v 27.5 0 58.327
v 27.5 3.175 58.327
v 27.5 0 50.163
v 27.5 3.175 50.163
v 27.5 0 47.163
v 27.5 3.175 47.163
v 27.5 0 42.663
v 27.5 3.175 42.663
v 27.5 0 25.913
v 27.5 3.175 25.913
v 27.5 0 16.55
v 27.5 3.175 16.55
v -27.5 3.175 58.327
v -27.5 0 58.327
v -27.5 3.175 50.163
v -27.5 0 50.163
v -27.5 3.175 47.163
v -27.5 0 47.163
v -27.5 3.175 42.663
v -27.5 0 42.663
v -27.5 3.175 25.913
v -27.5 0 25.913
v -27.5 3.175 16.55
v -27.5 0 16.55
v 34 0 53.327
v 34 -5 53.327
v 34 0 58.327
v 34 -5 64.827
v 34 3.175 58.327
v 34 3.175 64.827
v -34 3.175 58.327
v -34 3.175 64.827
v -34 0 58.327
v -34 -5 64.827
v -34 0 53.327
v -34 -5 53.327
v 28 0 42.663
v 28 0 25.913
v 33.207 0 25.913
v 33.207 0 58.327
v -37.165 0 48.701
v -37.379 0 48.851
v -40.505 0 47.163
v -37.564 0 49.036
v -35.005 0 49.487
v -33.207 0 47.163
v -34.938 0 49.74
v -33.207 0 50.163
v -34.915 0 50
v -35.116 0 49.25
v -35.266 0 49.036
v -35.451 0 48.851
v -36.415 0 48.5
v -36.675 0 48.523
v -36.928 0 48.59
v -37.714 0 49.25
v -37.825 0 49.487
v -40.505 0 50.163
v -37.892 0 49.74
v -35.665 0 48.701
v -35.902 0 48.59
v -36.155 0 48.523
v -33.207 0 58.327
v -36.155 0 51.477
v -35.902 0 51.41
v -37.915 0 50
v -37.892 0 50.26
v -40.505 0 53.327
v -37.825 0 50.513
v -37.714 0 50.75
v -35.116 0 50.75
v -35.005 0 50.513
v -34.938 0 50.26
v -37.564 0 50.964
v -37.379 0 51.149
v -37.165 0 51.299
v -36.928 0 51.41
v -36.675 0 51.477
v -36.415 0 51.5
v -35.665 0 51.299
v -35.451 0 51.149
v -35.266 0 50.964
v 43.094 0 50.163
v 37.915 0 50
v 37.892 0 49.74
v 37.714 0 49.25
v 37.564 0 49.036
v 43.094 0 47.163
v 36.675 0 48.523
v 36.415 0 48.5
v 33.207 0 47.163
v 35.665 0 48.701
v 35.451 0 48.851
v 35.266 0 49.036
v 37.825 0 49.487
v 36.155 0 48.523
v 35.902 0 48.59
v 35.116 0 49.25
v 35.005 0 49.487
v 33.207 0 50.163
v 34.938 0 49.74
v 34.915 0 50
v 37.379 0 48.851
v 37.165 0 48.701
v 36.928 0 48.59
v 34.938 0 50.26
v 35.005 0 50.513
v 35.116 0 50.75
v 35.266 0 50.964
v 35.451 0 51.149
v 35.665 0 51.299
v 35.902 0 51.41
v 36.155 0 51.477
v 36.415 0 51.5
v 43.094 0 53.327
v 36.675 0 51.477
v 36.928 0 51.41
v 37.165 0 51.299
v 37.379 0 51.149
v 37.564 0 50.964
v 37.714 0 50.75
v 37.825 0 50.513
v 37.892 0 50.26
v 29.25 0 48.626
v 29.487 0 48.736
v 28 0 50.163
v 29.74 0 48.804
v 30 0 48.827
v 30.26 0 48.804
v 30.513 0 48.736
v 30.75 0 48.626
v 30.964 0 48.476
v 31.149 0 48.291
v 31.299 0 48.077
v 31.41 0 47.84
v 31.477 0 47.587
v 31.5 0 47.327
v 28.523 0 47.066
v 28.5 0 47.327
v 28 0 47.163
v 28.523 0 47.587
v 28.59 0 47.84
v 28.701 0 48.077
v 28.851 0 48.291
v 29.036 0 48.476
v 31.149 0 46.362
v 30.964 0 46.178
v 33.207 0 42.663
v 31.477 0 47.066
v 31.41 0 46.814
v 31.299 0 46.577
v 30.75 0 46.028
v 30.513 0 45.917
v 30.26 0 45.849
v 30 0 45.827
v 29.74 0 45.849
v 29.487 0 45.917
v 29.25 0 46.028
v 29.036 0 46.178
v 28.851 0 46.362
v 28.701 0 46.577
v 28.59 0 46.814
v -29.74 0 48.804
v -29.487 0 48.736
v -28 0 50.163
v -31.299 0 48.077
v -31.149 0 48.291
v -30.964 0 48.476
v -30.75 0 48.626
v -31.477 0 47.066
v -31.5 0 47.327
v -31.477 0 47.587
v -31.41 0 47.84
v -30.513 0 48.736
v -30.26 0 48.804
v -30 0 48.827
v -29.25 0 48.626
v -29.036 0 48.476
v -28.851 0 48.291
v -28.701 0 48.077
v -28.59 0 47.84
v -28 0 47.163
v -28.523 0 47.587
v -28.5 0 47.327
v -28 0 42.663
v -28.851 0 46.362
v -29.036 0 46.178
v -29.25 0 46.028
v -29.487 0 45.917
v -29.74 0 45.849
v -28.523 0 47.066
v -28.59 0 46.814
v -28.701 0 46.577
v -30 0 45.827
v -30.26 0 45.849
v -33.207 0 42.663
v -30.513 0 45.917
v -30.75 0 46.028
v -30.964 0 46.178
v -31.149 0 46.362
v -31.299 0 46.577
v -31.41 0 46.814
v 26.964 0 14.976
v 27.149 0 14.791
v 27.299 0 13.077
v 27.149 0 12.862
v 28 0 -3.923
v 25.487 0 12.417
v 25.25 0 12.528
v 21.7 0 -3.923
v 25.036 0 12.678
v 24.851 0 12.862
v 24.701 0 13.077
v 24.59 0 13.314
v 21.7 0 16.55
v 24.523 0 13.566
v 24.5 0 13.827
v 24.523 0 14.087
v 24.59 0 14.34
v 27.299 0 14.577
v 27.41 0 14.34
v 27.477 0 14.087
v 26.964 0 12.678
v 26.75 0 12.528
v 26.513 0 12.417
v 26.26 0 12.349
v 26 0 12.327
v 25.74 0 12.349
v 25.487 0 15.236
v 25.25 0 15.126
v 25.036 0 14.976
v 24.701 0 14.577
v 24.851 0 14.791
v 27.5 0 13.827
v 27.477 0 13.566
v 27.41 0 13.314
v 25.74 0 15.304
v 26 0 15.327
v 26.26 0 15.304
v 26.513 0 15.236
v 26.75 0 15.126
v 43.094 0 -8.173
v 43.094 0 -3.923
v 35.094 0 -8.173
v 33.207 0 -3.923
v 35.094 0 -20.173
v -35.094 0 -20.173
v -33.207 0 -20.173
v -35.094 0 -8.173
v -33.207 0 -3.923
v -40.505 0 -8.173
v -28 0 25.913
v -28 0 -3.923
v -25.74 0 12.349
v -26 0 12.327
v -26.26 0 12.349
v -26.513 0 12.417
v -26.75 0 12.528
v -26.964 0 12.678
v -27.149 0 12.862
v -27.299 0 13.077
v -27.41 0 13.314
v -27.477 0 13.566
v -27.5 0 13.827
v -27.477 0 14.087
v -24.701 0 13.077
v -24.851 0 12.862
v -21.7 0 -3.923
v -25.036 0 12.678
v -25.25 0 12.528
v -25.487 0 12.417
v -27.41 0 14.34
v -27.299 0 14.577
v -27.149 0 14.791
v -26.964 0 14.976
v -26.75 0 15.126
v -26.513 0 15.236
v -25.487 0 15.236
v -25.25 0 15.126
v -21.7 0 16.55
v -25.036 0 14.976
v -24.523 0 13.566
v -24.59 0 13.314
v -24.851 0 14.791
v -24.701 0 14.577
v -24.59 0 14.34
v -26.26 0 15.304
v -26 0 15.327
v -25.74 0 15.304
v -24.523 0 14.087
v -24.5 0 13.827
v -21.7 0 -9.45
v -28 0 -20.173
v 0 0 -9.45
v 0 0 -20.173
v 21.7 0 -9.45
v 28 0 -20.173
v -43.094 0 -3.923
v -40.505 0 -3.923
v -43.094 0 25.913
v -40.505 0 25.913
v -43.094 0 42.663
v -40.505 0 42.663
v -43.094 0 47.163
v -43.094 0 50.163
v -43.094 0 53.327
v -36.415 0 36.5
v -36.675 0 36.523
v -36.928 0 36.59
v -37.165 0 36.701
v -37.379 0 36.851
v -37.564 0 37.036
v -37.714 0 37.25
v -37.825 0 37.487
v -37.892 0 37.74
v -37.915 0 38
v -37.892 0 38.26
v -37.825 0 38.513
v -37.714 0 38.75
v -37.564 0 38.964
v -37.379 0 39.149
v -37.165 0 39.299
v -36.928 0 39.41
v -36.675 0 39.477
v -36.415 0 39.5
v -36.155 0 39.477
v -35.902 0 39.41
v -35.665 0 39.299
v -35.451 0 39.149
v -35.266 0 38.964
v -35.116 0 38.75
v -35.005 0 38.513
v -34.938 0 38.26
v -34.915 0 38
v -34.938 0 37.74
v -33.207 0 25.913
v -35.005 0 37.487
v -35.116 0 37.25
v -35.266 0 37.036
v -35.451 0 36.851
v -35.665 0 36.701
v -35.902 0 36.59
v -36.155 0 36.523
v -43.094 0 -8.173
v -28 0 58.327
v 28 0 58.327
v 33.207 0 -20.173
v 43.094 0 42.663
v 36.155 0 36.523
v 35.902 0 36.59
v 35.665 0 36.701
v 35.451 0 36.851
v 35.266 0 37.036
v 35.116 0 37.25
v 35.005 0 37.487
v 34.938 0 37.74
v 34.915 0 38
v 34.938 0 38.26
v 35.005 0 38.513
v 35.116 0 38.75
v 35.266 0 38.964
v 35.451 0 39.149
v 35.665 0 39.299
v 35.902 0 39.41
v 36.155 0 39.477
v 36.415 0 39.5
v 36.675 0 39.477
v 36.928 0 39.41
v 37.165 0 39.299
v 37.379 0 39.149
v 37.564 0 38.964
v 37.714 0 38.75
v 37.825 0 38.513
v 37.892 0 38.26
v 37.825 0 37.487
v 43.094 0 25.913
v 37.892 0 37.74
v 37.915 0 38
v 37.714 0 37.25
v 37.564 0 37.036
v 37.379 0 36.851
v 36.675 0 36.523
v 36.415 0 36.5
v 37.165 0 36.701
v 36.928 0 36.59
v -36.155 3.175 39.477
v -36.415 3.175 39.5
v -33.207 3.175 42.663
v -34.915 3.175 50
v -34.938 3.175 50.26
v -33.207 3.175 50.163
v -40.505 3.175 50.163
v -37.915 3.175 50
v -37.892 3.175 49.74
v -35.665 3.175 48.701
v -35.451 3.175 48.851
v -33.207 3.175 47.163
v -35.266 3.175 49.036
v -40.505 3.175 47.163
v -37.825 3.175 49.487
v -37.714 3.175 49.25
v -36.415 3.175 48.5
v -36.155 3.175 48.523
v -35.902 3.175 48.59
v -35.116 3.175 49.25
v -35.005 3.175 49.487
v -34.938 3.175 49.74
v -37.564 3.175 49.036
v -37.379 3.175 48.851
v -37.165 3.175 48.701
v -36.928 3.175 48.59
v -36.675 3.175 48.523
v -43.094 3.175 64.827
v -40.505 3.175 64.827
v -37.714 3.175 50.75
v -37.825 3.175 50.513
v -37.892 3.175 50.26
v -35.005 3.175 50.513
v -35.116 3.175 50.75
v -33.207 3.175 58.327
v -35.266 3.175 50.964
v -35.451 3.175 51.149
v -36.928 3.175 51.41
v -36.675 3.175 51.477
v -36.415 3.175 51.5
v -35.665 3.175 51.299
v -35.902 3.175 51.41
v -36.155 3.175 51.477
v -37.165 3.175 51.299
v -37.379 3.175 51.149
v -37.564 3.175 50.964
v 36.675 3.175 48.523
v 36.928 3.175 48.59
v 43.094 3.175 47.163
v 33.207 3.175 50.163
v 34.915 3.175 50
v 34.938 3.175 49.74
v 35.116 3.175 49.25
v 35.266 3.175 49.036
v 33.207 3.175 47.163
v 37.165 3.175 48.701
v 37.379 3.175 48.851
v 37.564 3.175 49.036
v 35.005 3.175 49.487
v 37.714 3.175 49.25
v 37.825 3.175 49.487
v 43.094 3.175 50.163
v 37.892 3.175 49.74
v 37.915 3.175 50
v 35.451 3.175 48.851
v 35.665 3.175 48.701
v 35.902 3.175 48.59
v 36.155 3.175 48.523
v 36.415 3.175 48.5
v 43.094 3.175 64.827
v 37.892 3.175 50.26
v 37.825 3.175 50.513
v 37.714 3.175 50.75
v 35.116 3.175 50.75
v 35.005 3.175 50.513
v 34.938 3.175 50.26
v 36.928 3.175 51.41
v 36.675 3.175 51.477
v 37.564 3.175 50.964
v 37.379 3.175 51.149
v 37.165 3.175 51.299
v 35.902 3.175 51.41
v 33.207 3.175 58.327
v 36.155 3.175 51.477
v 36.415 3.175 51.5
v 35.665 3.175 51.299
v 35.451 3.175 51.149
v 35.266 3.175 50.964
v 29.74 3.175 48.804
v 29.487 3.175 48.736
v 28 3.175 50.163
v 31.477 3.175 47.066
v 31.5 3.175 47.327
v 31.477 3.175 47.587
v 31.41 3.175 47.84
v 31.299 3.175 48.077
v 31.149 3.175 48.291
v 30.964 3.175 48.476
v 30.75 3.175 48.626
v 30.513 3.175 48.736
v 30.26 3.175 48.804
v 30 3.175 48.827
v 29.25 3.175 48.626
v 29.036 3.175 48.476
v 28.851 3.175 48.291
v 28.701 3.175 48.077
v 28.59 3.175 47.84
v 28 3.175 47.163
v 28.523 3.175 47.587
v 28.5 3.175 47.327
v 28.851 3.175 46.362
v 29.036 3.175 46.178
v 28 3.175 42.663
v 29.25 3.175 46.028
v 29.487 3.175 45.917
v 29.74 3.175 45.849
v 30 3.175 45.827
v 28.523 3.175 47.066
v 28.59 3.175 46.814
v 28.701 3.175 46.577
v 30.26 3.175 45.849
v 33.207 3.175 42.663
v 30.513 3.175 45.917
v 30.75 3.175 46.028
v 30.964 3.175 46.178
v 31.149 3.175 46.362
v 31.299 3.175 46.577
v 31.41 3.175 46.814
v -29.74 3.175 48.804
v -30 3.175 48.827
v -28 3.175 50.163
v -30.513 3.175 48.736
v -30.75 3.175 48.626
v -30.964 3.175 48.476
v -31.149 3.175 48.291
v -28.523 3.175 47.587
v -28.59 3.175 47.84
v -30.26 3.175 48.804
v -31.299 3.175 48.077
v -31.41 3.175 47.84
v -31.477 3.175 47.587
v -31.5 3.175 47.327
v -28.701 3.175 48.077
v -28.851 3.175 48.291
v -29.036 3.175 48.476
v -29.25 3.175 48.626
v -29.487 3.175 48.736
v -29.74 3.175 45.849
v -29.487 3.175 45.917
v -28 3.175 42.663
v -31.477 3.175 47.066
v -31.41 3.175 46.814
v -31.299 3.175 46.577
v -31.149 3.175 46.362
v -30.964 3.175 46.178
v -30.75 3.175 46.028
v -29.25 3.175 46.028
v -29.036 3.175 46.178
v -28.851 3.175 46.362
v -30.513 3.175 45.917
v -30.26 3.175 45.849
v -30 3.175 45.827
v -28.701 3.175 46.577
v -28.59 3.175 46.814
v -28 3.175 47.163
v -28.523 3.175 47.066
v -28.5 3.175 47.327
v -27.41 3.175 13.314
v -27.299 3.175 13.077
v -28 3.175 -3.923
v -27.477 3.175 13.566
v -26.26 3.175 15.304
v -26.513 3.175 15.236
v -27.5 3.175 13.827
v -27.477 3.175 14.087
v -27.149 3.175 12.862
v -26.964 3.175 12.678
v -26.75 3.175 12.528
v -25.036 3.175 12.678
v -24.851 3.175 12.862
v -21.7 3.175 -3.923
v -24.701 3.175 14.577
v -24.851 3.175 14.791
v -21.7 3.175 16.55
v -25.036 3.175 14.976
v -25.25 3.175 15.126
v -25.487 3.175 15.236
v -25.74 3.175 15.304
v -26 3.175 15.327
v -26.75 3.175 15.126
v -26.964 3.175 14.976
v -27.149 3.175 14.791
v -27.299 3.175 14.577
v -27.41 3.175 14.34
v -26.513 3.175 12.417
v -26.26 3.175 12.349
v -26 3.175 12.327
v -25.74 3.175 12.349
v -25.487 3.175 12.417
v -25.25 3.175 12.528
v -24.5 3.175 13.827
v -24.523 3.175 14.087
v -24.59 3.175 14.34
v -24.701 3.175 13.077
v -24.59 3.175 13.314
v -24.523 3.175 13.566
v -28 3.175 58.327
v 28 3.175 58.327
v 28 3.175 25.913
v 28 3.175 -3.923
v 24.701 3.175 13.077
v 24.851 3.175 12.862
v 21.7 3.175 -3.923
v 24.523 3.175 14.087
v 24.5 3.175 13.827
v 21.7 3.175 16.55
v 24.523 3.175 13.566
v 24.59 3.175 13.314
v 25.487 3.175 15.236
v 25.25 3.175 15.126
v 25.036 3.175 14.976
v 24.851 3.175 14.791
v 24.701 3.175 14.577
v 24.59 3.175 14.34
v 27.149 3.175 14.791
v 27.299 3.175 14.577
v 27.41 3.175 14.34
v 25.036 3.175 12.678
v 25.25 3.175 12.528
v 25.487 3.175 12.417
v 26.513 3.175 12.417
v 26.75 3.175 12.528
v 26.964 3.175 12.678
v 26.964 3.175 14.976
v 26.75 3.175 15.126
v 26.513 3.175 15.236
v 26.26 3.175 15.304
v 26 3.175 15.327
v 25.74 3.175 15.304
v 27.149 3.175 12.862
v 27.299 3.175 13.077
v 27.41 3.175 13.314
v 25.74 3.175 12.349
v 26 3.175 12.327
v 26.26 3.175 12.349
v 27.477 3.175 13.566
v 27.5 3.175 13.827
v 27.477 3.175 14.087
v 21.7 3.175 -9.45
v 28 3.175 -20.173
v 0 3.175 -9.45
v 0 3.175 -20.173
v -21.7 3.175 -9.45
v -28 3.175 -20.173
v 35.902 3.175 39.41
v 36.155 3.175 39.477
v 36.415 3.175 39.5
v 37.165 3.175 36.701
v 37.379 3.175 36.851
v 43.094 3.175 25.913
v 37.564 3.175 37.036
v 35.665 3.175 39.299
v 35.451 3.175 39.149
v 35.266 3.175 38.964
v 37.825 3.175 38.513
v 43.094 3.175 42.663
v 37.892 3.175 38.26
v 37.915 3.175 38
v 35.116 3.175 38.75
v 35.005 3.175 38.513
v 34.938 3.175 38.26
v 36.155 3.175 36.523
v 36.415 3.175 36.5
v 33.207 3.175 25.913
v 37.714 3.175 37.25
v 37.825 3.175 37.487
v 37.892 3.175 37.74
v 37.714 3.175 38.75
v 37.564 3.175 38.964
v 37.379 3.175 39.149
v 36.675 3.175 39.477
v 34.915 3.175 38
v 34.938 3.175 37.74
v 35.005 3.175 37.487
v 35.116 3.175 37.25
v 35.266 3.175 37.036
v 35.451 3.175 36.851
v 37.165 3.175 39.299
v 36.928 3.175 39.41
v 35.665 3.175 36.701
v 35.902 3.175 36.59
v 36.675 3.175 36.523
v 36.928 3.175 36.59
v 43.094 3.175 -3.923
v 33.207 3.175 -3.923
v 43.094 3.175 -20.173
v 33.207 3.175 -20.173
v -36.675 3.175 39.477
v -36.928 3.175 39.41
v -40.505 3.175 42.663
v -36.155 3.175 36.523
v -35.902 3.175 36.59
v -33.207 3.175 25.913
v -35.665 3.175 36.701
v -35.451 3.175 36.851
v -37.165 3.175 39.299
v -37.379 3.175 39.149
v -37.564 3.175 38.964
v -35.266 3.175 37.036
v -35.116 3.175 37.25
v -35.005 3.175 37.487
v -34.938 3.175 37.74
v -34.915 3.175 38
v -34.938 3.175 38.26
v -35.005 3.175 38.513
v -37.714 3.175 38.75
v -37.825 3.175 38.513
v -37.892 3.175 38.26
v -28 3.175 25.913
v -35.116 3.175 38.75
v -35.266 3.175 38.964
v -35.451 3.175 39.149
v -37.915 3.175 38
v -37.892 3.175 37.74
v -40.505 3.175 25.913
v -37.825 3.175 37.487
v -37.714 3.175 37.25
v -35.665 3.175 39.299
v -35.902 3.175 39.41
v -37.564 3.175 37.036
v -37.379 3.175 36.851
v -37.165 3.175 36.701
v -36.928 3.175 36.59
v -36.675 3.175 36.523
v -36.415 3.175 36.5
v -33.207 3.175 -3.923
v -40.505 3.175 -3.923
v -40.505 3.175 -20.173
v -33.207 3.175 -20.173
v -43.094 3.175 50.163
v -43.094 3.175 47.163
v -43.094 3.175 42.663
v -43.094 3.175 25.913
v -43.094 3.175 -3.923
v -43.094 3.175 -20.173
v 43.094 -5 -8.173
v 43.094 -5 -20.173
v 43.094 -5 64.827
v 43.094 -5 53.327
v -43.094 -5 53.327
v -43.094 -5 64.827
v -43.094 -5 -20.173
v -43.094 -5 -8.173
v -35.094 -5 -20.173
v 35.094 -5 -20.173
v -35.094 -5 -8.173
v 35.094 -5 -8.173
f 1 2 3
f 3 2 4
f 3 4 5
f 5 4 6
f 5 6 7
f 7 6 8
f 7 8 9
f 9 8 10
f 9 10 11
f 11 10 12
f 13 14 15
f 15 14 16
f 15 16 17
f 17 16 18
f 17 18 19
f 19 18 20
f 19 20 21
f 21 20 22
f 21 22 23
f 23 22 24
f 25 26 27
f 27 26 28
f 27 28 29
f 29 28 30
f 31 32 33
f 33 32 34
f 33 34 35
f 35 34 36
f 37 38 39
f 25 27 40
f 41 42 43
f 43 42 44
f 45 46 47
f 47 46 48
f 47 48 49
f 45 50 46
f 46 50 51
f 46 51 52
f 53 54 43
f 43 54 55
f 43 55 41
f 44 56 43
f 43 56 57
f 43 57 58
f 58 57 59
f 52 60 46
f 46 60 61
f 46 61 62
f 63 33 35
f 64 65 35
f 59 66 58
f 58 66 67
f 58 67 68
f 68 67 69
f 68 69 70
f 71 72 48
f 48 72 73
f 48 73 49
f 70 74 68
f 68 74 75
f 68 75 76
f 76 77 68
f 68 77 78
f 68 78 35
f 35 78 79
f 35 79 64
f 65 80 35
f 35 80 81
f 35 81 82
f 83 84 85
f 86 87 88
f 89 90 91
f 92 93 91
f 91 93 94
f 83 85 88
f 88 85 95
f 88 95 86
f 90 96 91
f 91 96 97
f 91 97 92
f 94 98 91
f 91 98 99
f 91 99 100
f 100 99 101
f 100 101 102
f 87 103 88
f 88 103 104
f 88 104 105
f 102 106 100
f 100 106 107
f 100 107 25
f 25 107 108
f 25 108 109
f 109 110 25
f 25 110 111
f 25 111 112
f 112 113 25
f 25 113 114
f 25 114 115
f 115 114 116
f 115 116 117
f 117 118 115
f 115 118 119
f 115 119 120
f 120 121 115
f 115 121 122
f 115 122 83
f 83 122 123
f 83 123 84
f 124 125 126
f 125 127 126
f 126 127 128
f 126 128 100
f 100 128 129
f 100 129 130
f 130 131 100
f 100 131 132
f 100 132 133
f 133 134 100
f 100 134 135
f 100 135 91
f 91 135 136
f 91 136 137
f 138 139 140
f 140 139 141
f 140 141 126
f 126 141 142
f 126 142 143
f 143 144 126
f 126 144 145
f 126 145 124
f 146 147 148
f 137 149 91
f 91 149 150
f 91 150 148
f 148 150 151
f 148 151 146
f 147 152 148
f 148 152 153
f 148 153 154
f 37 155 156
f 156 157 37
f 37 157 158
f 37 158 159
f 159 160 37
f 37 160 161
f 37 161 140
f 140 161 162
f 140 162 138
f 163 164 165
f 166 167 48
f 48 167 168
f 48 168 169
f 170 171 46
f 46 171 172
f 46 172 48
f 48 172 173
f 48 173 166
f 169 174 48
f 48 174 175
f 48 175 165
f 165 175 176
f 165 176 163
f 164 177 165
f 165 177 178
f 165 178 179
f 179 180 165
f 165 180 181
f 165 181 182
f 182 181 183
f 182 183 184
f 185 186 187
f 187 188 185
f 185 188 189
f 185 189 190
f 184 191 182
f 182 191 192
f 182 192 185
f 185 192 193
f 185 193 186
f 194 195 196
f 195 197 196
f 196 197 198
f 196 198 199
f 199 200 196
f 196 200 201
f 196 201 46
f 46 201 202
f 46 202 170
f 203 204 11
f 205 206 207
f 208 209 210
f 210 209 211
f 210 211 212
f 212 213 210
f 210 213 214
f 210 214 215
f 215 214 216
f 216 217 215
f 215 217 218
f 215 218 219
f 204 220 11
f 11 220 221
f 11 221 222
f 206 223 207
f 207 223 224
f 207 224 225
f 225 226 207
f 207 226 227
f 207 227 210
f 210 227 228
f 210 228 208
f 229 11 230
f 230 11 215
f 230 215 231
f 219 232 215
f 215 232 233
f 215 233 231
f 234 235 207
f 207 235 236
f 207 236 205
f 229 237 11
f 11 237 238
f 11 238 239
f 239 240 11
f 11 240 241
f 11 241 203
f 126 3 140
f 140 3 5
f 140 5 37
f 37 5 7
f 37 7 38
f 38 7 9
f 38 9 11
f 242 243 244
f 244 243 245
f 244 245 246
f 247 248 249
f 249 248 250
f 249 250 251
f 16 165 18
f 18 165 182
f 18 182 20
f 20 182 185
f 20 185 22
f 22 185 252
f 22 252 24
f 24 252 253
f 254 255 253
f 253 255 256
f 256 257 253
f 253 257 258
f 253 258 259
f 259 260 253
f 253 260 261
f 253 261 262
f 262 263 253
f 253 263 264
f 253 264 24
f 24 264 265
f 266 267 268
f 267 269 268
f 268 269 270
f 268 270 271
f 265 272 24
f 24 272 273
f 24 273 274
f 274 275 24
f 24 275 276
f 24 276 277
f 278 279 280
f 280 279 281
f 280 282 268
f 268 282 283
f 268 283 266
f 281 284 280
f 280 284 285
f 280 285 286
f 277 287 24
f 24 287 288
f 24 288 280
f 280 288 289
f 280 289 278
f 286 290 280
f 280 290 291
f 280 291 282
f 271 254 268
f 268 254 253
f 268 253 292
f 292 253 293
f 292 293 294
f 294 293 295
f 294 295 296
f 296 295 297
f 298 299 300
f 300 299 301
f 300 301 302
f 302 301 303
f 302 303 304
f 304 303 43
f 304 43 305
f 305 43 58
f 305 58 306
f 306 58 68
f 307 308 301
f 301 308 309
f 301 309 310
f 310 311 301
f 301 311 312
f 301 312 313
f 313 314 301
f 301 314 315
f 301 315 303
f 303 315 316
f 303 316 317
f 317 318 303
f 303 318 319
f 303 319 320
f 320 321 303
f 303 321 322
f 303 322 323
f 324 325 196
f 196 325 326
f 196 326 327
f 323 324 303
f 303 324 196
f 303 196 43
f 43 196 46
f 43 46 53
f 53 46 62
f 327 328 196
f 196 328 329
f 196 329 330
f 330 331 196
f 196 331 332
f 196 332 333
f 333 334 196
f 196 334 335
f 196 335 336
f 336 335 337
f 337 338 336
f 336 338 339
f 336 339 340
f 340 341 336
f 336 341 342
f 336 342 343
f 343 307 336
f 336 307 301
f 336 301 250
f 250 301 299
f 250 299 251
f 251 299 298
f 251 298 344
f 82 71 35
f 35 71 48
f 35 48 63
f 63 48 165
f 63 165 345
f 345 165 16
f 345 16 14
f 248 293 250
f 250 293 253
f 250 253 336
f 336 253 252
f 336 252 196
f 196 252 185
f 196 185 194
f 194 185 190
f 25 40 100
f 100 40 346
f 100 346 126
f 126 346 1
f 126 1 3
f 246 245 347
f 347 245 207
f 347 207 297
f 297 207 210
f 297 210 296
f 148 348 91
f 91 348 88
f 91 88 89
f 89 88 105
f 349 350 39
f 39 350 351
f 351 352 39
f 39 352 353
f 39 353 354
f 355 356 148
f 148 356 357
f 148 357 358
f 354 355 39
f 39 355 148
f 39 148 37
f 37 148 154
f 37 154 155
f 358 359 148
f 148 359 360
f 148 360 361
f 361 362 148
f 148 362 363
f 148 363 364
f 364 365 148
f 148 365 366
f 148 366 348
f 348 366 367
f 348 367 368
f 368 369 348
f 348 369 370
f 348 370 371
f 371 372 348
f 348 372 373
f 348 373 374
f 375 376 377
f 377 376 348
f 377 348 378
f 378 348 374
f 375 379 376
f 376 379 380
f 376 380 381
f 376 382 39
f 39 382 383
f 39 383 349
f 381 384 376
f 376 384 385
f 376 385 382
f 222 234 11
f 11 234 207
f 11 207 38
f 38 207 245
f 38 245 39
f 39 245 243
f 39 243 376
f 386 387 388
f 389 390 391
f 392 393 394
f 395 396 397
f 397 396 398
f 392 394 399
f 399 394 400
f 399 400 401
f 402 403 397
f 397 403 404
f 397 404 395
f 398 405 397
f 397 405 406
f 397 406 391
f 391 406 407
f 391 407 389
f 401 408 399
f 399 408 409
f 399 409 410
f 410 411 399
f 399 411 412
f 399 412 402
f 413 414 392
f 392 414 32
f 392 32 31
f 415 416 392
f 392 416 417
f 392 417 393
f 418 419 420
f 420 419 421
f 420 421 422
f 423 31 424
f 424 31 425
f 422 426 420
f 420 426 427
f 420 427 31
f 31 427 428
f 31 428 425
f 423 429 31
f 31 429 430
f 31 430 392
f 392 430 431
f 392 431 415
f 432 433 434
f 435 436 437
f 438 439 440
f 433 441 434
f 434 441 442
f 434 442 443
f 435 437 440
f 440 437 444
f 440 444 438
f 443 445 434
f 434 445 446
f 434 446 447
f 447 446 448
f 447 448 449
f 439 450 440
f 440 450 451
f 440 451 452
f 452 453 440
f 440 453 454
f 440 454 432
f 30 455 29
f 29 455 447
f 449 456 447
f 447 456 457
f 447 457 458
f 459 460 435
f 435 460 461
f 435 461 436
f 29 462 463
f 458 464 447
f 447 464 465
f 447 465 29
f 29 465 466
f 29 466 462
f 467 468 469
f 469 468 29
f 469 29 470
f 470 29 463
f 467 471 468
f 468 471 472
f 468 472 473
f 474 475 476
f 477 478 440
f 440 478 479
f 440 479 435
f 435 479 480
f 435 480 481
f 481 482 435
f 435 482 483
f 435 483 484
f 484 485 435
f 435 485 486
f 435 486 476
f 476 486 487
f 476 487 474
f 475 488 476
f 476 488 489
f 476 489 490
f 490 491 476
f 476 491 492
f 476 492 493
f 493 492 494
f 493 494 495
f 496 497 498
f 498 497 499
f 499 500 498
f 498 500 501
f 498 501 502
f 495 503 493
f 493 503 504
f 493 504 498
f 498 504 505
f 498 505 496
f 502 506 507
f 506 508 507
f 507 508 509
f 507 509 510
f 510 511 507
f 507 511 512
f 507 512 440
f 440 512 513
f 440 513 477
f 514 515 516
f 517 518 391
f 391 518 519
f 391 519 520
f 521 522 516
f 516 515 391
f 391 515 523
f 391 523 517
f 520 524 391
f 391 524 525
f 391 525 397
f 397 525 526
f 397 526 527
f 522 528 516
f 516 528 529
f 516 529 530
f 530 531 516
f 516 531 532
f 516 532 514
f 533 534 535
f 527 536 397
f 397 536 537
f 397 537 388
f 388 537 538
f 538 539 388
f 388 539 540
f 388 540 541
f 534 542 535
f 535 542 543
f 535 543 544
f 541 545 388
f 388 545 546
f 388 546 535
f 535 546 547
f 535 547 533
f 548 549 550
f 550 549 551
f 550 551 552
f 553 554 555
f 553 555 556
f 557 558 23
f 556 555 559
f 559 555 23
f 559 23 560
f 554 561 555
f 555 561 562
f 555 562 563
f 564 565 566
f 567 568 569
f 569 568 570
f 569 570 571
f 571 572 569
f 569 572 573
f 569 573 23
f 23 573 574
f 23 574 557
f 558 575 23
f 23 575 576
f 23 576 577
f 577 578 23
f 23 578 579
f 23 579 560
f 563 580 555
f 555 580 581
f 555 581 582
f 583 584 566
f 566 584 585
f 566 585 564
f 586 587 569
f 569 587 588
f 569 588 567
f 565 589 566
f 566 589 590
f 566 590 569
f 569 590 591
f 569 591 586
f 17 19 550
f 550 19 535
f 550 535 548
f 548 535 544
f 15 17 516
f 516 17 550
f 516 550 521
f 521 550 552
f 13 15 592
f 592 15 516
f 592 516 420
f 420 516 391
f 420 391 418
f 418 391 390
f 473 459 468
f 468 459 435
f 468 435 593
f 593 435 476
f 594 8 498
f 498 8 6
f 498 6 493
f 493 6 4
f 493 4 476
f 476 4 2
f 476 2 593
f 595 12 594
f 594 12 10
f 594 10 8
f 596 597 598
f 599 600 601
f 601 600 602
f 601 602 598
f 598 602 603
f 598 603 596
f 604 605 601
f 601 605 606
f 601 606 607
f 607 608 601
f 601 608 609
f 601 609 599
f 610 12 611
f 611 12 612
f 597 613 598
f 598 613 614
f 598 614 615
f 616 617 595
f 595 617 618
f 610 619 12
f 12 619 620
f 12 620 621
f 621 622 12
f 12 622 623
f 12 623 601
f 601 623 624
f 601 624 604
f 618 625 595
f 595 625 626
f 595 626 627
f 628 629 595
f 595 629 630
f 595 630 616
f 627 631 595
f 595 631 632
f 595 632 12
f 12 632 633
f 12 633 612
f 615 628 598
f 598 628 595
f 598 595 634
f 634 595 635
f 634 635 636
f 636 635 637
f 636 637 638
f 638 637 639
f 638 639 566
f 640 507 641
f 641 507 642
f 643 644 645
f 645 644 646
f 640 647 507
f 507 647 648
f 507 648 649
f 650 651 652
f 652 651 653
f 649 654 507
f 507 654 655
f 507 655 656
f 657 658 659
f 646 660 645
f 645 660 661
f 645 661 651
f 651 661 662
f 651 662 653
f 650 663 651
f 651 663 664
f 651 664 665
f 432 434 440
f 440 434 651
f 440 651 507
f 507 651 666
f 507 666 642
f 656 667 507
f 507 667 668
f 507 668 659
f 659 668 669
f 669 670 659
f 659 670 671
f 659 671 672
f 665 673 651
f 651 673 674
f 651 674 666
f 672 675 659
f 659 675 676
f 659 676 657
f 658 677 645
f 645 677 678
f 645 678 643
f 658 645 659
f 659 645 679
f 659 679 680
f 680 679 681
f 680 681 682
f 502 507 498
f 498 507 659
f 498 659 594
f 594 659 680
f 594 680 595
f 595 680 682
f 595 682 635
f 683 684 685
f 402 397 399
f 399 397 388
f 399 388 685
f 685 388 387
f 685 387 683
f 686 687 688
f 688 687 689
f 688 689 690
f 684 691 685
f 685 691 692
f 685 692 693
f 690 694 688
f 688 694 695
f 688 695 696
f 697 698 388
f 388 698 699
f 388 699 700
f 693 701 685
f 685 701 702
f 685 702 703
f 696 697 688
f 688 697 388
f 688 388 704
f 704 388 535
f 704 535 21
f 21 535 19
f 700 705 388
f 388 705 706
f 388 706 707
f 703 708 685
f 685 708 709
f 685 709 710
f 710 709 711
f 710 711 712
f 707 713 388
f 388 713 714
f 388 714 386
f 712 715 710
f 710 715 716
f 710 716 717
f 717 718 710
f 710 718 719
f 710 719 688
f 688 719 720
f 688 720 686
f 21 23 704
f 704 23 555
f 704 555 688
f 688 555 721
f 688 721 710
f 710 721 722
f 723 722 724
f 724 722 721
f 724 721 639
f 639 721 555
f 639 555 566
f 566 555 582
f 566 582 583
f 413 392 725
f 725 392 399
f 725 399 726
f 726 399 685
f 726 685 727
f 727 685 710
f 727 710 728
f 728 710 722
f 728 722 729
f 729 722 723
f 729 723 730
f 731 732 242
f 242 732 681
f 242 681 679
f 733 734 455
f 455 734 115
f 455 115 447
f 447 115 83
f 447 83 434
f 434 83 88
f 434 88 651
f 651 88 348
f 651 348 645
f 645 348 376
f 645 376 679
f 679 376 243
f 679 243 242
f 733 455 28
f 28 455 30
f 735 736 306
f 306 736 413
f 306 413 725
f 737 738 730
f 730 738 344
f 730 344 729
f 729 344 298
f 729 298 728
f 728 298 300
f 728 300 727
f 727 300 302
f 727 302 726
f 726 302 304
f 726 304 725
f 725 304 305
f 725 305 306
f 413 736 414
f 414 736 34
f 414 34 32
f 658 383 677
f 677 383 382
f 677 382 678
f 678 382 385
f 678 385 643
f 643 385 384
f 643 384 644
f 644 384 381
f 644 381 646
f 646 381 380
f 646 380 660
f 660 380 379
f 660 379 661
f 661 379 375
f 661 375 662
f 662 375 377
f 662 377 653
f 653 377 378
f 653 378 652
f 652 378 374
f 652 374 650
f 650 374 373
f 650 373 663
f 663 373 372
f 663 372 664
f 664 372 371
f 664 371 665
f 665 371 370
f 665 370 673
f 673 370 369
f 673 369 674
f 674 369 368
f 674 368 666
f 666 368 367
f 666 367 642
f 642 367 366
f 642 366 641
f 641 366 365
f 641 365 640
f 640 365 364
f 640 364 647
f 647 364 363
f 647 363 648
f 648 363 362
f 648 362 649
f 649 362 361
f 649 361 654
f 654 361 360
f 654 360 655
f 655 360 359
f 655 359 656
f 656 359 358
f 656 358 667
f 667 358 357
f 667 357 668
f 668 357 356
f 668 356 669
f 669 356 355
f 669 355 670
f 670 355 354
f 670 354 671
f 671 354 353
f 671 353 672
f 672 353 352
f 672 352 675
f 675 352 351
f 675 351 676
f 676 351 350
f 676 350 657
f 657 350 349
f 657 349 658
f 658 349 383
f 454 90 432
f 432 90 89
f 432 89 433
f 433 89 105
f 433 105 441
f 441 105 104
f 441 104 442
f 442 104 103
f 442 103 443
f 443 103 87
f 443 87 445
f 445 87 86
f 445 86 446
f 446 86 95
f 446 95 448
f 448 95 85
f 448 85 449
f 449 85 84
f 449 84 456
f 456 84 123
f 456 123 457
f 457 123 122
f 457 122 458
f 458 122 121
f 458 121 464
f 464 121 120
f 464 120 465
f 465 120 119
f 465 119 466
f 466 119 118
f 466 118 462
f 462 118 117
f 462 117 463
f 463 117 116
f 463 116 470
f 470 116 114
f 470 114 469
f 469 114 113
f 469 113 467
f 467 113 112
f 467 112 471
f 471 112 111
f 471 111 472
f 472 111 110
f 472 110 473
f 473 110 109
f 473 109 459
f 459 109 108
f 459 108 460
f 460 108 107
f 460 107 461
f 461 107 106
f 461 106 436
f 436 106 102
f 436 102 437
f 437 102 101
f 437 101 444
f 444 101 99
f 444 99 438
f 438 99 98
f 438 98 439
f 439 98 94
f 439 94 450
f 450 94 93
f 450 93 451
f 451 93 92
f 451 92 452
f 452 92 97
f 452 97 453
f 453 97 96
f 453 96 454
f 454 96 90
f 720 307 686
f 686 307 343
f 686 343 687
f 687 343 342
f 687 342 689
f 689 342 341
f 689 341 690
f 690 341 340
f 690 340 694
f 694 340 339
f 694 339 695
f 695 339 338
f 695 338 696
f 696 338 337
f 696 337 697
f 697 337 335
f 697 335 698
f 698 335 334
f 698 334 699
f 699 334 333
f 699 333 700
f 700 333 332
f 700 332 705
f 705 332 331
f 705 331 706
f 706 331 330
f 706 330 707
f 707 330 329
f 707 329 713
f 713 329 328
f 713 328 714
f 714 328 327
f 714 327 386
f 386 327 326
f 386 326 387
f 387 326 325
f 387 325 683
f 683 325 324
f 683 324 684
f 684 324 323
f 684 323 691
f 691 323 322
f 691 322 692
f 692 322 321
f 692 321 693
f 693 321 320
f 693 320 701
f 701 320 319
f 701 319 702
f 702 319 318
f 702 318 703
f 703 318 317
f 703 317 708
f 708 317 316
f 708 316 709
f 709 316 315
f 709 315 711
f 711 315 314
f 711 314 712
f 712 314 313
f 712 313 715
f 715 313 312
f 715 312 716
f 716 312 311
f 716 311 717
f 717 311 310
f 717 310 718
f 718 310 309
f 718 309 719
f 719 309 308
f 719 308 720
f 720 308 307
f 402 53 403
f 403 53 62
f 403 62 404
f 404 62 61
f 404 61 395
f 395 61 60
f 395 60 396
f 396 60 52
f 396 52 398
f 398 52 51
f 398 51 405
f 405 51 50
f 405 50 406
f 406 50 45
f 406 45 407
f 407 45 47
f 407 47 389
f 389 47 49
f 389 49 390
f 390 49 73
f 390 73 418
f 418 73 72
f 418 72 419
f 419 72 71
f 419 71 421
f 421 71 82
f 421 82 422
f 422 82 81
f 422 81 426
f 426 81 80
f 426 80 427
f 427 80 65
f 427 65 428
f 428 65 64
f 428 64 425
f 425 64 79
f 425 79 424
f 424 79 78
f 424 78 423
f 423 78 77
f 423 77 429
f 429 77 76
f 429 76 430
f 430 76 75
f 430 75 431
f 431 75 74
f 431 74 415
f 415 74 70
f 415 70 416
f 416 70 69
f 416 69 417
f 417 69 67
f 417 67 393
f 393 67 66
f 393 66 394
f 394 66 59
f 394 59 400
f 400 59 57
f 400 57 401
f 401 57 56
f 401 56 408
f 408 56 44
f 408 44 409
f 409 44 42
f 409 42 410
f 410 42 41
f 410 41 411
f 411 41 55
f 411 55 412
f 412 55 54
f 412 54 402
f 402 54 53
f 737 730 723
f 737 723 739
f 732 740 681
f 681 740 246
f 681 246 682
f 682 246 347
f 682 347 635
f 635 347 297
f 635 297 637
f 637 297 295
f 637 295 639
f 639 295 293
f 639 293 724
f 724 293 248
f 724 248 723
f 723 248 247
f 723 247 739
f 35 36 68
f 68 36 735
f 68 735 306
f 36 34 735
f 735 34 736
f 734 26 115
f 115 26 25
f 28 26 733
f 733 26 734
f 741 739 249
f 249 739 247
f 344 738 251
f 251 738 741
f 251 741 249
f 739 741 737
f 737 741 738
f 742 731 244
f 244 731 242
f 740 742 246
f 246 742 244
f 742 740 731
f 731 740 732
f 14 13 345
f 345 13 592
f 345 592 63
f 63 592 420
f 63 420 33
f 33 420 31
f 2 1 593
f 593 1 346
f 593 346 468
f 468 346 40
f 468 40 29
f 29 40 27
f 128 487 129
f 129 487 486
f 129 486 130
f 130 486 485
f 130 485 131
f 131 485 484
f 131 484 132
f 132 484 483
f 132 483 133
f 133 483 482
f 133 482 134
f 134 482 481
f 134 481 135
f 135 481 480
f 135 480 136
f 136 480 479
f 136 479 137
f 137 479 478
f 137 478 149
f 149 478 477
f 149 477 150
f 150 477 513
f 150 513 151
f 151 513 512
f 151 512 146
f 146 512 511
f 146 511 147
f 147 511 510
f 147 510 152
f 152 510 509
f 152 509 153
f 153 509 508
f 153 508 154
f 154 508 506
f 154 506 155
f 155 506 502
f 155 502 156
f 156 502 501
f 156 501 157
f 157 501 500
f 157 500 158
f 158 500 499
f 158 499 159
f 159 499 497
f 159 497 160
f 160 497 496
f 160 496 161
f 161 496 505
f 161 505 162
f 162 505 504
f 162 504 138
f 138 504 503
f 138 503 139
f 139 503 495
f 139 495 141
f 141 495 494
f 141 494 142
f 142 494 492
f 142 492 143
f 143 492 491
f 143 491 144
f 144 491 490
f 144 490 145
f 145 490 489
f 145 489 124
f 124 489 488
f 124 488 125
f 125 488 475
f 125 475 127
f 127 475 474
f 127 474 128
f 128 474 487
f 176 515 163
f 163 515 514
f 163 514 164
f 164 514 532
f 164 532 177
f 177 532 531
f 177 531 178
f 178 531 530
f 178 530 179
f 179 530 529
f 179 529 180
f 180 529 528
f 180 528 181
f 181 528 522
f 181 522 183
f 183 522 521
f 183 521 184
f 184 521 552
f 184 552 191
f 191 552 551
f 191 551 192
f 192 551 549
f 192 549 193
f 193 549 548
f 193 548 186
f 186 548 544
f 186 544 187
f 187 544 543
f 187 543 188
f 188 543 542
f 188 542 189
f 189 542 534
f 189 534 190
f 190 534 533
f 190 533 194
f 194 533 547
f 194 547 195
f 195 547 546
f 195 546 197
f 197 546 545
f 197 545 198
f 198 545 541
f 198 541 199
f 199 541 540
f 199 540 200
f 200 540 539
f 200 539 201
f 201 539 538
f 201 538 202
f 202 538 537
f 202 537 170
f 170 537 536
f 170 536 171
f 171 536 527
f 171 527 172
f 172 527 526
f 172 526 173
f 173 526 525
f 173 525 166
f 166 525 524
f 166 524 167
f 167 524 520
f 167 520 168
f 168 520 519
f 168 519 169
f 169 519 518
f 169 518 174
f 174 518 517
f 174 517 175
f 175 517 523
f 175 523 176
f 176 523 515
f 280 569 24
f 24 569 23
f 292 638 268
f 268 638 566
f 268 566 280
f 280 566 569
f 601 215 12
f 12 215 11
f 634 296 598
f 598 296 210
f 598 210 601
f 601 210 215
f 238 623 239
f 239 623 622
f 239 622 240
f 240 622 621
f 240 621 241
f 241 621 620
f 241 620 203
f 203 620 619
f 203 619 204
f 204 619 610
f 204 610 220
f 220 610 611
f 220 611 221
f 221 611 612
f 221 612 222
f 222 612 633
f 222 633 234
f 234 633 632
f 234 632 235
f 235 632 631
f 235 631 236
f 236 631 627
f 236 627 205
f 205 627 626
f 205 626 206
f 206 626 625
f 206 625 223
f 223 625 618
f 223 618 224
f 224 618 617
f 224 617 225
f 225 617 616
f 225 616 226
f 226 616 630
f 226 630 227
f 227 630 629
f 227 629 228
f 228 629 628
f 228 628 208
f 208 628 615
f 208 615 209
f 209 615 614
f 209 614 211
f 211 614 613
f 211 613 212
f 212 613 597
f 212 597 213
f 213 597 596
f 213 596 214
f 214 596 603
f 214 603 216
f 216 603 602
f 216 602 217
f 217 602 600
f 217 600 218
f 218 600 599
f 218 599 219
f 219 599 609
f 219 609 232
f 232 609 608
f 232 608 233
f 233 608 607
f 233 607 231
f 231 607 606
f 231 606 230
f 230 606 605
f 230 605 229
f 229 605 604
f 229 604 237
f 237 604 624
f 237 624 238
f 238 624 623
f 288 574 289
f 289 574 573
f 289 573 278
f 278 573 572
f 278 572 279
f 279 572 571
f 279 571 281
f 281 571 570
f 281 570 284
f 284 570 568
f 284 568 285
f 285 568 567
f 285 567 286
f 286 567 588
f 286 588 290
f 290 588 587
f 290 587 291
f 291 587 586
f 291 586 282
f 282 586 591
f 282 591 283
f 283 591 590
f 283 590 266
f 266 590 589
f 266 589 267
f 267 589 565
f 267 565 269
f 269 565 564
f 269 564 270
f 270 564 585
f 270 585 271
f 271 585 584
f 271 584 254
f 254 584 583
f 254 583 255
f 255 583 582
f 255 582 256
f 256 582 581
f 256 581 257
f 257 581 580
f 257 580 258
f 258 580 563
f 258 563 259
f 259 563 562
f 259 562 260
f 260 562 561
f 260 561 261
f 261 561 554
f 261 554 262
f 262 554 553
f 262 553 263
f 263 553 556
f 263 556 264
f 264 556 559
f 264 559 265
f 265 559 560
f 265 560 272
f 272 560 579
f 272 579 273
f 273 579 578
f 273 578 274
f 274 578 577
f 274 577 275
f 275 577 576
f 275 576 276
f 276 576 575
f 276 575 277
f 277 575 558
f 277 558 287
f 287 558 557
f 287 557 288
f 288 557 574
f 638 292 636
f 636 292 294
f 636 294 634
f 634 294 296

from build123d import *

# Parameters (mm, degrees)
BOSS_EXTRUDE4_DEPTH  = 3.175
M3_CLEARANCE_HOLE3_D = 3
M3_CLEARANCE_HOLE1_D = 3.1
M3_CLEARANCE_HOLE4_D = 2.95
M3_CLEARANCE_HOLE2_D = 3.1
CUT_EXTRUDE1_DEPTH   = 121.250075364
BOSS_EXTRUDE6_DEPTH  = 3.175
CUT_EXTRUDE3_DEPTH   = 121.250075364
SKETCH25_R           = 1.5
CUT_EXTRUDE4_DEPTH   = 121.250075364
SKETCH26_W           = 55
SKETCH26_H           = 60
CUT_EXTRUDE5_DEPTH   = 10
SKETCH27_OUTSIDE_W   = 217.324
SKETCH27_OUTSIDE_H   = 197.151
SKETCH27_OUTSIDE_W_2 = 86.188981544
SKETCH27_OUTSIDE_H_2 = 85
CUT_EXTRUDE6_DEPTH   = 10
SKETCH32_W           = 68
SKETCH32_H           = 11.5
CUT_EXTRUDE9_DEPTH   = 78.908304199
SKETCH33_W           = 9.094490772
SKETCH33_H           = 11.5
SKETCH33_W_2         = 8
SKETCH33_H_2         = 12
BOSS_EXTRUDE7_DEPTH  = 5
SKETCH34_W           = 6.5
SKETCH34_H           = 3.175
BOSS_EXTRUDE8_DEPTH  = 5
SKETCH35_R           = 1.5
CUT_EXTRUDE10_DEPTH  = 79.271667052
SKETCH38_W           = 18
SKETCH38_H           = 3.175
BOSS_EXTRUDE10_DEPTH = 5.8
SKETCH39_W           = 18
SKETCH39_H           = 3.175
BOSS_EXTRUDE11_DEPTH = 5.8
SKETCH37_R           = 1.5
CUT_EXTRUDE14_DEPTH  = 79.271667052
SKETCH40_W           = 43.4
SKETCH40_H           = 8
CUT_EXTRUDE15_DEPTH  = 79.271667052


with BuildPart() as part:
    # Sketch1 → Boss-Extrude4 (new body)
    with BuildSketch(Plane(origin=(0, 0, 0), x_dir=(1, 0, 0), z_dir=(0, 1, 0))):
        with BuildLine():
            Line((-62.799553621, 32.496136604), (-73.969425011, 32.691107434))
            Line((-73.969425011, 32.691107434), (-77.053684287, 35.88495141))
            ThreePointArc((-77.053684287, 35.88495141), (-84.36642289, 10.358894189), (-83.446216027, -16.178041625))
            Line((-83.446216027, -16.178041625), (-79.680911643, -13.825218315))
            Line((-79.680911643, -13.825218315), (-69.484649137, -16.179210996))
            Line((-69.484649137, -16.179210996), (-43.094490772, -58.412292655))
            Line((-43.094490772, -58.412292655), (-43.094490772, -64.826600275))
            Line((-43.094490772, -64.826600275), (-34, -64.826600275))
            Line((-34, -64.826600275), (-34, -58.55))
            Line((-34, -58.55), (34, -58.55))
            Line((34, -58.55), (34, -64.826600275))
            Line((34, -64.826600275), (43.094490772, -64.826600275))
            Line((43.094490772, -64.826600275), (43.094490772, -58.412292655))
            Line((43.094490772, -58.412292655), (69.484649137, -16.179210996))
            Line((69.484649137, -16.179210996), (79.680911643, -13.825218315))
            Line((79.680911643, -13.825218315), (83.446216027, -16.178041625))
            ThreePointArc((83.446216027, -16.178041625), (84.36642289, 10.358894189), (77.053684287, 35.88495141))
            Line((77.053684287, 35.88495141), (73.969425011, 32.691107434))
            Line((73.969425011, 32.691107434), (62.799553621, 32.496136604))
            Line((62.799553621, 32.496136604), (30.284668021, 63.895396642))
            Line((30.284668021, 63.895396642), (30.089697191, 75.065268032))
            Line((30.089697191, 75.065268032), (33.173956467, 78.259112008))
            ThreePointArc((33.173956467, 78.259112008), (0, 85), (-33.173956467, 78.259112008))
            Line((-33.173956467, 78.259112008), (-30.089697191, 75.065268032))
            Line((-30.089697191, 75.065268032), (-30.284668021, 63.895396642))
            Line((-30.284668021, 63.895396642), (-62.799553621, 32.496136604))
        make_face()
    extrude(amount=BOSS_EXTRUDE4_DEPTH)

    # M3 Clearance Hole3 (through all)
    with Locations(Plane(origin=(0, 0, 0), x_dir=(-1, 0, 0), z_dir=(0, -1, 0))):
        with Locations((36.415, -50), (36.415, -38), (-36.415, -50), (-36.415, -38)):
            Hole(M3_CLEARANCE_HOLE3_D / 2)

    # M3 Clearance Hole1 (through all)
    with Locations(Plane(origin=(0, 3.175, 0), x_dir=(1, 0, 0), z_dir=(0, 1, 0))):
        with Locations((-78.542321426, -8.49139241), (78.542321426, -8.49139241), (74.155025063, 27.240269049), (-74.155025063, 27.240269049)):
            Hole(M3_CLEARANCE_HOLE1_D / 2)

    # M3 Clearance Hole4 (through all)
    with Locations(Plane(origin=(0, 0, 0), x_dir=(-1, 0, 0), z_dir=(0, -1, 0))):
        with Locations((-67.099301622, -15.278865202), (-50.141885166, -42.416404279), (-61.062544382, 30.698137949), (-38.043670771, 52.927205804), (50.141885166, -42.416404279), (67.099301622, -15.278865202), (38.043670771, 52.927205804), (61.062544382, 30.698137949)):
            Hole(M3_CLEARANCE_HOLE4_D / 2)

    # M3 Clearance Hole2 (through all)
    with Locations(Plane(origin=(0, 3.175, 0), x_dir=(1, 0, 0), z_dir=(0, 1, 0))):
        with Locations((27, 76.497766718), (-27, 76.497766718)):
            Hole(M3_CLEARANCE_HOLE2_D / 2)

    # Sketch20 → Cut-Extrude1 (cut, through all)
    with BuildSketch(Plane(origin=(0, 3.175, 0), x_dir=(1, 0, 0), z_dir=(0, 1, 0))):
        with BuildLine():
            Line((-14.64850035, 45.5), (-14.64850035, 40.5))
            ThreePointArc((-14.64850035, 40.5), (-16.14850035, 39), (-17.64850035, 40.5))
            Line((-17.64850035, 40.5), (-17.64850035, 45.5))
            ThreePointArc((-17.64850035, 45.5), (-16.14850035, 47), (-14.64850035, 45.5))
        make_face()
        with BuildLine():
            Line((14.64850035, 45.5), (14.64850035, 40.5))
            ThreePointArc((14.64850035, 40.5), (16.14850035, 39), (17.64850035, 40.5))
            Line((17.64850035, 40.5), (17.64850035, 45.5))
            ThreePointArc((17.64850035, 45.5), (16.14850035, 47), (14.64850035, 45.5))
        make_face()
    extrude(amount=-CUT_EXTRUDE1_DEPTH, mode=Mode.SUBTRACT)

    # Sketch22 → Boss-Extrude6 (add)
    with BuildSketch(Plane(origin=(0, 3.175, 0), x_dir=(1, 0, 0), z_dir=(0, 1, 0))):
        Polygon((-30.284668021, 63.895396642), (-30.245177733, 66.157793715), (-65.061950694, 32.535626892), (-62.799553621, 32.496136604), align=None)
        Polygon((-69.484649137, -16.179210996), (-71.689396914, -15.670204865), (-43.094490772, -61.431620518), (-43.094490772, -58.412292655), align=None)
        Polygon((43.094490772, -61.431620518), (71.689396914, -15.670204865), (69.484649137, -16.179210996), (43.094490772, -58.412292655), align=None)
        Polygon((65.061950694, 32.535626892), (30.245177733, 66.157793715), (30.284668021, 63.895396642), (62.799553621, 32.496136604), align=None)
    extrude(amount=-BOSS_EXTRUDE6_DEPTH)

    # Sketch24 → Cut-Extrude3 (cut, through all)
    with BuildSketch(Plane(origin=(0, 3.175, 0), x_dir=(1, 0, 0), z_dir=(0, 1, 0))):
        Polygon((-27, -52.75), (-27, -22.75), (-21.2, -22.75), (-21.2, 1.45), (0, 1.45), (21.2, 1.45), (21.2, -22.75), (27, -22.75), (27, -52.75), (21.2, -52.75), (21.2, -58.55), (-21.2, -58.55), (-21.2, -52.75), align=None)
    extrude(amount=-CUT_EXTRUDE3_DEPTH, mode=Mode.SUBTRACT)

    # Sketch25 → Cut-Extrude4 (cut, through all)
    with BuildSketch(Plane(origin=(0, 3.175, 0), x_dir=(1, 0, 0), z_dir=(0, 1, 0))):
        with Locations(Location((-24.1, -55.65, 0), (0, 0, 270))):
            Circle(SKETCH25_R)
        with Locations(Location((-24.1, -19.85, 0), (0, 0, 270))):
            Circle(SKETCH25_R)
        with Locations(Location((24.1, -19.85, 0), (0, 0, 270))):
            Circle(SKETCH25_R)
        with Locations(Location((24.1, -55.65, 0), (0, 0, 270))):
            Circle(SKETCH25_R)
    extrude(amount=-CUT_EXTRUDE4_DEPTH, mode=Mode.SUBTRACT)

    # Sketch26 → Cut-Extrude5 (cut)
    with BuildSketch(Plane(origin=(0, 3.175, 0), x_dir=(1, 0, 0), z_dir=(0, 1, 0))):
        with Locations((0, -28.55)):
            Rectangle(SKETCH26_W, SKETCH26_H)
    extrude(amount=-CUT_EXTRUDE5_DEPTH, mode=Mode.SUBTRACT)

    # Sketch27 outside → Cut-Extrude6 (cut)
    with BuildSketch(Plane(origin=(0, 3.175, 0), x_dir=(1, 0, 0), z_dir=(0, 1, 0))):
        with Locations((0, 10.0865)):
            Rectangle(SKETCH27_OUTSIDE_W, SKETCH27_OUTSIDE_H)
        with Locations((0, -22.326600275)):
            Rectangle(SKETCH27_OUTSIDE_W_2, SKETCH27_OUTSIDE_H_2, mode=Mode.SUBTRACT)
    extrude(amount=-CUT_EXTRUDE6_DEPTH, mode=Mode.SUBTRACT)

    # Sketch32 → Cut-Extrude9 (cut, through all)
    with BuildSketch(Plane(origin=(0, 3.175, 0), x_dir=(1, 0, 0), z_dir=(0, 1, 0))):
        with Locations((0, -59.076600275)):
            Rectangle(SKETCH32_W, SKETCH32_H)
    extrude(amount=-CUT_EXTRUDE9_DEPTH, mode=Mode.SUBTRACT)

    # Sketch33 → Boss-Extrude7 (add)
    with BuildSketch(Plane.XZ):
        with Locations((-38.547245386, 59.076600275)):
            Rectangle(SKETCH33_W, SKETCH33_H)
        with Locations((38.547245386, 59.076600275)):
            Rectangle(SKETCH33_W, SKETCH33_H)
        with Locations((-39.094490772, -14.173399725)):
            Rectangle(SKETCH33_W_2, SKETCH33_H_2)
        with Locations((39.094490772, -14.173399725)):
            Rectangle(SKETCH33_W_2, SKETCH33_H_2)
    extrude(amount=BOSS_EXTRUDE7_DEPTH)

    # Sketch34 → Boss-Extrude8 (add)
    with BuildSketch(Plane.XY.offset(53.326600275)):
        with Locations((-30.75, 1.5875)):
            Rectangle(SKETCH34_W, SKETCH34_H)
        with Locations((30.75, 1.5875)):
            Rectangle(SKETCH34_W, SKETCH34_H)
    extrude(amount=BOSS_EXTRUDE8_DEPTH)

    # Sketch35 → Cut-Extrude10 (cut, through all)
    with BuildSketch(Plane(origin=(0, 3.175, 0), x_dir=(1, 0, 0), z_dir=(0, 1, 0))):
        with Locations(Location((-30, -47.326600275, 0), (0, 0, 270))):
            Circle(SKETCH35_R)
        with Locations(Location((30, -47.326600275, 0), (0, 0, 270))):
            Circle(SKETCH35_R)
    extrude(amount=-CUT_EXTRUDE10_DEPTH, mode=Mode.SUBTRACT)

    # Sketch38 → Boss-Extrude10 (add)
    with BuildSketch(Plane(origin=(-27.5, 0, 0), x_dir=(0, 0, -1), z_dir=(1, 0, 0))):
        with Locations((-7.55, 1.5875)):
            Rectangle(SKETCH38_W, SKETCH38_H)
    extrude(amount=BOSS_EXTRUDE10_DEPTH)

    # Sketch39 → Boss-Extrude11 (add)
    with BuildSketch(Plane.ZY.offset(-27.5)):
        with Locations((7.55, 1.5875)):
            Rectangle(SKETCH39_W, SKETCH39_H)
    extrude(amount=BOSS_EXTRUDE11_DEPTH)

    # Sketch37 → Cut-Extrude14 (cut, through all)
    with BuildSketch(Plane(origin=(0, 3.175, 0), x_dir=(1, 0, 0), z_dir=(0, 1, 0))):
        with Locations(Location((-26, -13.826600275, 0), (0, 0, 270))):
            Circle(SKETCH37_R)
        with Locations(Location((26, -13.826600275, 0), (0, 0, 270))):
            Circle(SKETCH37_R)
    extrude(amount=-CUT_EXTRUDE14_DEPTH, mode=Mode.SUBTRACT)

    # Sketch40 → Cut-Extrude15 (cut, through all)
    with BuildSketch(Plane(origin=(0, 3.175, 0), x_dir=(1, 0, 0), z_dir=(0, 1, 0))):
        with Locations((0, 5.45)):
            Rectangle(SKETCH40_W, SKETCH40_H)
    extrude(amount=-CUT_EXTRUDE15_DEPTH, mode=Mode.SUBTRACT)


solid = part.part
